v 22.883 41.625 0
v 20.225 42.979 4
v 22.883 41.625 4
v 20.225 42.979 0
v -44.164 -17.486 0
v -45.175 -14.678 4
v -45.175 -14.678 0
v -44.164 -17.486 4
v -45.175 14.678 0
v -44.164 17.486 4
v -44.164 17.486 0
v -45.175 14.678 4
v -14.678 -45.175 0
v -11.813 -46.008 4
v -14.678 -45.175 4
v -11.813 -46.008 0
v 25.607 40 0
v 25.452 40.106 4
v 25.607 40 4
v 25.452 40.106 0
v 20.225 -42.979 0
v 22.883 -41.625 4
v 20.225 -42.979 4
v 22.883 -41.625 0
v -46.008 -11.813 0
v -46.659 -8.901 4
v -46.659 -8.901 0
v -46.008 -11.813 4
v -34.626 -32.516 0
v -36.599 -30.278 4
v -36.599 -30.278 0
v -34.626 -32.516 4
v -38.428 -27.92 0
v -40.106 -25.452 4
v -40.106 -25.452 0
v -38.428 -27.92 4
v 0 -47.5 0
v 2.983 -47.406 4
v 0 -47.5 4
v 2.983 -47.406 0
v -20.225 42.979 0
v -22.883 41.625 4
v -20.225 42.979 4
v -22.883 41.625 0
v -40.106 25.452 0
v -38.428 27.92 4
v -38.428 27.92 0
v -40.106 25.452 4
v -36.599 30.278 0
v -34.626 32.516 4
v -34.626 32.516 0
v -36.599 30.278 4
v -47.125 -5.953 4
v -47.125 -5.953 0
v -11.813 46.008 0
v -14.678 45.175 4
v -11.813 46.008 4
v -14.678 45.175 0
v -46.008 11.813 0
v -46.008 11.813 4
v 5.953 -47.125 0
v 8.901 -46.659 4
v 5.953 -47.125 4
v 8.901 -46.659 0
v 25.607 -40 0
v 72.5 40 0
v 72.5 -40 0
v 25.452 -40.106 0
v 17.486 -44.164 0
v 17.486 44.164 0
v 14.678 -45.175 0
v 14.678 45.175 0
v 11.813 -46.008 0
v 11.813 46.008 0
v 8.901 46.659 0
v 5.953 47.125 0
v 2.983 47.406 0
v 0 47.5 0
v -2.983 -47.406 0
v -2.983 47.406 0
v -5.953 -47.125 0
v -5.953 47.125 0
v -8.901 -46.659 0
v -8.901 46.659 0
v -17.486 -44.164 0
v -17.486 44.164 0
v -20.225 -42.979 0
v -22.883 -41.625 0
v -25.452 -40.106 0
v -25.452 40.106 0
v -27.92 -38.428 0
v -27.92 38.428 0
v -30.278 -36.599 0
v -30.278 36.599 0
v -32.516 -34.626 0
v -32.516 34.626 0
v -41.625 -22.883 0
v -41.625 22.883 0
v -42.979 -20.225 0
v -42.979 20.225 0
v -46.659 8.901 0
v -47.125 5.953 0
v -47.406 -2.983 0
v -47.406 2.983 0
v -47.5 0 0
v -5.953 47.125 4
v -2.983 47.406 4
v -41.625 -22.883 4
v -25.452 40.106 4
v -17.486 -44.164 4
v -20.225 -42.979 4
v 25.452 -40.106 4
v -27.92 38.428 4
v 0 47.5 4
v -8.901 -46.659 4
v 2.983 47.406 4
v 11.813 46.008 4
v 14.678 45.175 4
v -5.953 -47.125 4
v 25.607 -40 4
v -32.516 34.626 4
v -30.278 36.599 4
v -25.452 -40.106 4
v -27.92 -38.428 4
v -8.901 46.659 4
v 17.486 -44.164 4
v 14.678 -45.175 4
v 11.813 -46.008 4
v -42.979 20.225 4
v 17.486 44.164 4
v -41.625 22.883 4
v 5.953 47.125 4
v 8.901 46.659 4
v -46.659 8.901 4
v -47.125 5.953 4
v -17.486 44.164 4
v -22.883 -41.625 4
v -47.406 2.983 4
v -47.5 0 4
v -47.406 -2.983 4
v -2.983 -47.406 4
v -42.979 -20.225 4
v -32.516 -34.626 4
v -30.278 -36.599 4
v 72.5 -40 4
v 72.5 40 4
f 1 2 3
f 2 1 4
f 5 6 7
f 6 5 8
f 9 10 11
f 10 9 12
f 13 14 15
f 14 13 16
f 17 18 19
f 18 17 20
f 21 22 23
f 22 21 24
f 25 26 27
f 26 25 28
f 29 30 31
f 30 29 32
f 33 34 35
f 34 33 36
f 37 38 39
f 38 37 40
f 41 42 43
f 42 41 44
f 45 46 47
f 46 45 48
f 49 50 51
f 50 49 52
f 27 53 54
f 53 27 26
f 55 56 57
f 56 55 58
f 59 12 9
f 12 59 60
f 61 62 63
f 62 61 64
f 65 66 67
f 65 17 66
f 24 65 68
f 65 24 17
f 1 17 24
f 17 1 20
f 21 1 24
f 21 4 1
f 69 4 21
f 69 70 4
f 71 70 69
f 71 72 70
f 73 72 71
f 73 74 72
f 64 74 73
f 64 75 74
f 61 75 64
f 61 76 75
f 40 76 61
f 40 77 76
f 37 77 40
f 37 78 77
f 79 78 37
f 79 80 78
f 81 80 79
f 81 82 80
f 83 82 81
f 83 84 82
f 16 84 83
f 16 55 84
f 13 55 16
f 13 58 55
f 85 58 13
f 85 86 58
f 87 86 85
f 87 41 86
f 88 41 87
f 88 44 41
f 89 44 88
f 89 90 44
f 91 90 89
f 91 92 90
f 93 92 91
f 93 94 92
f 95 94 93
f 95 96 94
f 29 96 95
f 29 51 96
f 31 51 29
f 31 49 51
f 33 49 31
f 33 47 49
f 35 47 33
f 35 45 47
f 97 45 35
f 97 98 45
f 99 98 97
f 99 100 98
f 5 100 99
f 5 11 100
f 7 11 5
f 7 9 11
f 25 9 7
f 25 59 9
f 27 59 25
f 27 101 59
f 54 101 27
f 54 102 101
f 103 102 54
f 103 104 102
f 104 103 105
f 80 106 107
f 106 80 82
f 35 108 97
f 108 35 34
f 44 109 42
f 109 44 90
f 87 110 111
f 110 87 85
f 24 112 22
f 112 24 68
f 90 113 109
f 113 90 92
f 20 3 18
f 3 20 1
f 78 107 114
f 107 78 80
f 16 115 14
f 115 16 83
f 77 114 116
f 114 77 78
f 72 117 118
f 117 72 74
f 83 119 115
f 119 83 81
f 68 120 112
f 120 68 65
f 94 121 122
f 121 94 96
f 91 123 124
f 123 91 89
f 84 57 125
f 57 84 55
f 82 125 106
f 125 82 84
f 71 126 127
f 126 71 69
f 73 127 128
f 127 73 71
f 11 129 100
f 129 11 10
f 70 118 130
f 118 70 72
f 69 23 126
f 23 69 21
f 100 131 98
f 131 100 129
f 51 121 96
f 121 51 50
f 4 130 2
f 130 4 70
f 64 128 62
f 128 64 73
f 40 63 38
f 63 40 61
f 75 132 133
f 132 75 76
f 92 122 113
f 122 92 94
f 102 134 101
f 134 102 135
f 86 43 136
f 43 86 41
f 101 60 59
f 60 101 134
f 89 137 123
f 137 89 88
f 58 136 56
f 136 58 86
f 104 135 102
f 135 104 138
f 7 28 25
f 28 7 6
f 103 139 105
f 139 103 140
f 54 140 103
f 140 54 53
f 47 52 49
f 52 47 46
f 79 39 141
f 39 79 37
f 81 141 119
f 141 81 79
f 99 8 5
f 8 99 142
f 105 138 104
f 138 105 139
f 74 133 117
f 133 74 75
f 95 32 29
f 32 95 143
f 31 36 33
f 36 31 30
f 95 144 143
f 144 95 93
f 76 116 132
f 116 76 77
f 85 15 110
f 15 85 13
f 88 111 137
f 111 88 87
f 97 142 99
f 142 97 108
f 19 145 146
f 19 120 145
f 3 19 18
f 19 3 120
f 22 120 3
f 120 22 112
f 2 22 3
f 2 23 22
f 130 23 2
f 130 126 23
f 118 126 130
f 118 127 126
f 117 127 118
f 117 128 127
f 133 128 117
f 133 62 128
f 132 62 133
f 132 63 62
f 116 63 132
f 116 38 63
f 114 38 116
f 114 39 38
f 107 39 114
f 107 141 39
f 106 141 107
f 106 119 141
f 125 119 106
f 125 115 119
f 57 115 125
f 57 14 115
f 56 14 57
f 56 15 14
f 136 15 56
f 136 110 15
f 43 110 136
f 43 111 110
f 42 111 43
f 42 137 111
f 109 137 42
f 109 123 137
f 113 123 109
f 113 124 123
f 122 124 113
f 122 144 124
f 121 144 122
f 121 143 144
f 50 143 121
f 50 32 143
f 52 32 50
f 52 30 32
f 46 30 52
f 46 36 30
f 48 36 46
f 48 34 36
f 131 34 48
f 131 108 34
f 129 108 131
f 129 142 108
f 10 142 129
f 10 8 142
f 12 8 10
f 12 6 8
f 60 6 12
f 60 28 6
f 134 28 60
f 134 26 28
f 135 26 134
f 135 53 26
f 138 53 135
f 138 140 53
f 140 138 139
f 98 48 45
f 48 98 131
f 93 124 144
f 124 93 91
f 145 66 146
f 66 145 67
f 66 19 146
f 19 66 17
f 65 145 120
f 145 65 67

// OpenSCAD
difference() {
union() {

  cylinder(h=4, r=95/2, $fn=100, center=false);
  translate([0, -40, 0])
        cube([47.5+25, 80, 4]);

}
}
